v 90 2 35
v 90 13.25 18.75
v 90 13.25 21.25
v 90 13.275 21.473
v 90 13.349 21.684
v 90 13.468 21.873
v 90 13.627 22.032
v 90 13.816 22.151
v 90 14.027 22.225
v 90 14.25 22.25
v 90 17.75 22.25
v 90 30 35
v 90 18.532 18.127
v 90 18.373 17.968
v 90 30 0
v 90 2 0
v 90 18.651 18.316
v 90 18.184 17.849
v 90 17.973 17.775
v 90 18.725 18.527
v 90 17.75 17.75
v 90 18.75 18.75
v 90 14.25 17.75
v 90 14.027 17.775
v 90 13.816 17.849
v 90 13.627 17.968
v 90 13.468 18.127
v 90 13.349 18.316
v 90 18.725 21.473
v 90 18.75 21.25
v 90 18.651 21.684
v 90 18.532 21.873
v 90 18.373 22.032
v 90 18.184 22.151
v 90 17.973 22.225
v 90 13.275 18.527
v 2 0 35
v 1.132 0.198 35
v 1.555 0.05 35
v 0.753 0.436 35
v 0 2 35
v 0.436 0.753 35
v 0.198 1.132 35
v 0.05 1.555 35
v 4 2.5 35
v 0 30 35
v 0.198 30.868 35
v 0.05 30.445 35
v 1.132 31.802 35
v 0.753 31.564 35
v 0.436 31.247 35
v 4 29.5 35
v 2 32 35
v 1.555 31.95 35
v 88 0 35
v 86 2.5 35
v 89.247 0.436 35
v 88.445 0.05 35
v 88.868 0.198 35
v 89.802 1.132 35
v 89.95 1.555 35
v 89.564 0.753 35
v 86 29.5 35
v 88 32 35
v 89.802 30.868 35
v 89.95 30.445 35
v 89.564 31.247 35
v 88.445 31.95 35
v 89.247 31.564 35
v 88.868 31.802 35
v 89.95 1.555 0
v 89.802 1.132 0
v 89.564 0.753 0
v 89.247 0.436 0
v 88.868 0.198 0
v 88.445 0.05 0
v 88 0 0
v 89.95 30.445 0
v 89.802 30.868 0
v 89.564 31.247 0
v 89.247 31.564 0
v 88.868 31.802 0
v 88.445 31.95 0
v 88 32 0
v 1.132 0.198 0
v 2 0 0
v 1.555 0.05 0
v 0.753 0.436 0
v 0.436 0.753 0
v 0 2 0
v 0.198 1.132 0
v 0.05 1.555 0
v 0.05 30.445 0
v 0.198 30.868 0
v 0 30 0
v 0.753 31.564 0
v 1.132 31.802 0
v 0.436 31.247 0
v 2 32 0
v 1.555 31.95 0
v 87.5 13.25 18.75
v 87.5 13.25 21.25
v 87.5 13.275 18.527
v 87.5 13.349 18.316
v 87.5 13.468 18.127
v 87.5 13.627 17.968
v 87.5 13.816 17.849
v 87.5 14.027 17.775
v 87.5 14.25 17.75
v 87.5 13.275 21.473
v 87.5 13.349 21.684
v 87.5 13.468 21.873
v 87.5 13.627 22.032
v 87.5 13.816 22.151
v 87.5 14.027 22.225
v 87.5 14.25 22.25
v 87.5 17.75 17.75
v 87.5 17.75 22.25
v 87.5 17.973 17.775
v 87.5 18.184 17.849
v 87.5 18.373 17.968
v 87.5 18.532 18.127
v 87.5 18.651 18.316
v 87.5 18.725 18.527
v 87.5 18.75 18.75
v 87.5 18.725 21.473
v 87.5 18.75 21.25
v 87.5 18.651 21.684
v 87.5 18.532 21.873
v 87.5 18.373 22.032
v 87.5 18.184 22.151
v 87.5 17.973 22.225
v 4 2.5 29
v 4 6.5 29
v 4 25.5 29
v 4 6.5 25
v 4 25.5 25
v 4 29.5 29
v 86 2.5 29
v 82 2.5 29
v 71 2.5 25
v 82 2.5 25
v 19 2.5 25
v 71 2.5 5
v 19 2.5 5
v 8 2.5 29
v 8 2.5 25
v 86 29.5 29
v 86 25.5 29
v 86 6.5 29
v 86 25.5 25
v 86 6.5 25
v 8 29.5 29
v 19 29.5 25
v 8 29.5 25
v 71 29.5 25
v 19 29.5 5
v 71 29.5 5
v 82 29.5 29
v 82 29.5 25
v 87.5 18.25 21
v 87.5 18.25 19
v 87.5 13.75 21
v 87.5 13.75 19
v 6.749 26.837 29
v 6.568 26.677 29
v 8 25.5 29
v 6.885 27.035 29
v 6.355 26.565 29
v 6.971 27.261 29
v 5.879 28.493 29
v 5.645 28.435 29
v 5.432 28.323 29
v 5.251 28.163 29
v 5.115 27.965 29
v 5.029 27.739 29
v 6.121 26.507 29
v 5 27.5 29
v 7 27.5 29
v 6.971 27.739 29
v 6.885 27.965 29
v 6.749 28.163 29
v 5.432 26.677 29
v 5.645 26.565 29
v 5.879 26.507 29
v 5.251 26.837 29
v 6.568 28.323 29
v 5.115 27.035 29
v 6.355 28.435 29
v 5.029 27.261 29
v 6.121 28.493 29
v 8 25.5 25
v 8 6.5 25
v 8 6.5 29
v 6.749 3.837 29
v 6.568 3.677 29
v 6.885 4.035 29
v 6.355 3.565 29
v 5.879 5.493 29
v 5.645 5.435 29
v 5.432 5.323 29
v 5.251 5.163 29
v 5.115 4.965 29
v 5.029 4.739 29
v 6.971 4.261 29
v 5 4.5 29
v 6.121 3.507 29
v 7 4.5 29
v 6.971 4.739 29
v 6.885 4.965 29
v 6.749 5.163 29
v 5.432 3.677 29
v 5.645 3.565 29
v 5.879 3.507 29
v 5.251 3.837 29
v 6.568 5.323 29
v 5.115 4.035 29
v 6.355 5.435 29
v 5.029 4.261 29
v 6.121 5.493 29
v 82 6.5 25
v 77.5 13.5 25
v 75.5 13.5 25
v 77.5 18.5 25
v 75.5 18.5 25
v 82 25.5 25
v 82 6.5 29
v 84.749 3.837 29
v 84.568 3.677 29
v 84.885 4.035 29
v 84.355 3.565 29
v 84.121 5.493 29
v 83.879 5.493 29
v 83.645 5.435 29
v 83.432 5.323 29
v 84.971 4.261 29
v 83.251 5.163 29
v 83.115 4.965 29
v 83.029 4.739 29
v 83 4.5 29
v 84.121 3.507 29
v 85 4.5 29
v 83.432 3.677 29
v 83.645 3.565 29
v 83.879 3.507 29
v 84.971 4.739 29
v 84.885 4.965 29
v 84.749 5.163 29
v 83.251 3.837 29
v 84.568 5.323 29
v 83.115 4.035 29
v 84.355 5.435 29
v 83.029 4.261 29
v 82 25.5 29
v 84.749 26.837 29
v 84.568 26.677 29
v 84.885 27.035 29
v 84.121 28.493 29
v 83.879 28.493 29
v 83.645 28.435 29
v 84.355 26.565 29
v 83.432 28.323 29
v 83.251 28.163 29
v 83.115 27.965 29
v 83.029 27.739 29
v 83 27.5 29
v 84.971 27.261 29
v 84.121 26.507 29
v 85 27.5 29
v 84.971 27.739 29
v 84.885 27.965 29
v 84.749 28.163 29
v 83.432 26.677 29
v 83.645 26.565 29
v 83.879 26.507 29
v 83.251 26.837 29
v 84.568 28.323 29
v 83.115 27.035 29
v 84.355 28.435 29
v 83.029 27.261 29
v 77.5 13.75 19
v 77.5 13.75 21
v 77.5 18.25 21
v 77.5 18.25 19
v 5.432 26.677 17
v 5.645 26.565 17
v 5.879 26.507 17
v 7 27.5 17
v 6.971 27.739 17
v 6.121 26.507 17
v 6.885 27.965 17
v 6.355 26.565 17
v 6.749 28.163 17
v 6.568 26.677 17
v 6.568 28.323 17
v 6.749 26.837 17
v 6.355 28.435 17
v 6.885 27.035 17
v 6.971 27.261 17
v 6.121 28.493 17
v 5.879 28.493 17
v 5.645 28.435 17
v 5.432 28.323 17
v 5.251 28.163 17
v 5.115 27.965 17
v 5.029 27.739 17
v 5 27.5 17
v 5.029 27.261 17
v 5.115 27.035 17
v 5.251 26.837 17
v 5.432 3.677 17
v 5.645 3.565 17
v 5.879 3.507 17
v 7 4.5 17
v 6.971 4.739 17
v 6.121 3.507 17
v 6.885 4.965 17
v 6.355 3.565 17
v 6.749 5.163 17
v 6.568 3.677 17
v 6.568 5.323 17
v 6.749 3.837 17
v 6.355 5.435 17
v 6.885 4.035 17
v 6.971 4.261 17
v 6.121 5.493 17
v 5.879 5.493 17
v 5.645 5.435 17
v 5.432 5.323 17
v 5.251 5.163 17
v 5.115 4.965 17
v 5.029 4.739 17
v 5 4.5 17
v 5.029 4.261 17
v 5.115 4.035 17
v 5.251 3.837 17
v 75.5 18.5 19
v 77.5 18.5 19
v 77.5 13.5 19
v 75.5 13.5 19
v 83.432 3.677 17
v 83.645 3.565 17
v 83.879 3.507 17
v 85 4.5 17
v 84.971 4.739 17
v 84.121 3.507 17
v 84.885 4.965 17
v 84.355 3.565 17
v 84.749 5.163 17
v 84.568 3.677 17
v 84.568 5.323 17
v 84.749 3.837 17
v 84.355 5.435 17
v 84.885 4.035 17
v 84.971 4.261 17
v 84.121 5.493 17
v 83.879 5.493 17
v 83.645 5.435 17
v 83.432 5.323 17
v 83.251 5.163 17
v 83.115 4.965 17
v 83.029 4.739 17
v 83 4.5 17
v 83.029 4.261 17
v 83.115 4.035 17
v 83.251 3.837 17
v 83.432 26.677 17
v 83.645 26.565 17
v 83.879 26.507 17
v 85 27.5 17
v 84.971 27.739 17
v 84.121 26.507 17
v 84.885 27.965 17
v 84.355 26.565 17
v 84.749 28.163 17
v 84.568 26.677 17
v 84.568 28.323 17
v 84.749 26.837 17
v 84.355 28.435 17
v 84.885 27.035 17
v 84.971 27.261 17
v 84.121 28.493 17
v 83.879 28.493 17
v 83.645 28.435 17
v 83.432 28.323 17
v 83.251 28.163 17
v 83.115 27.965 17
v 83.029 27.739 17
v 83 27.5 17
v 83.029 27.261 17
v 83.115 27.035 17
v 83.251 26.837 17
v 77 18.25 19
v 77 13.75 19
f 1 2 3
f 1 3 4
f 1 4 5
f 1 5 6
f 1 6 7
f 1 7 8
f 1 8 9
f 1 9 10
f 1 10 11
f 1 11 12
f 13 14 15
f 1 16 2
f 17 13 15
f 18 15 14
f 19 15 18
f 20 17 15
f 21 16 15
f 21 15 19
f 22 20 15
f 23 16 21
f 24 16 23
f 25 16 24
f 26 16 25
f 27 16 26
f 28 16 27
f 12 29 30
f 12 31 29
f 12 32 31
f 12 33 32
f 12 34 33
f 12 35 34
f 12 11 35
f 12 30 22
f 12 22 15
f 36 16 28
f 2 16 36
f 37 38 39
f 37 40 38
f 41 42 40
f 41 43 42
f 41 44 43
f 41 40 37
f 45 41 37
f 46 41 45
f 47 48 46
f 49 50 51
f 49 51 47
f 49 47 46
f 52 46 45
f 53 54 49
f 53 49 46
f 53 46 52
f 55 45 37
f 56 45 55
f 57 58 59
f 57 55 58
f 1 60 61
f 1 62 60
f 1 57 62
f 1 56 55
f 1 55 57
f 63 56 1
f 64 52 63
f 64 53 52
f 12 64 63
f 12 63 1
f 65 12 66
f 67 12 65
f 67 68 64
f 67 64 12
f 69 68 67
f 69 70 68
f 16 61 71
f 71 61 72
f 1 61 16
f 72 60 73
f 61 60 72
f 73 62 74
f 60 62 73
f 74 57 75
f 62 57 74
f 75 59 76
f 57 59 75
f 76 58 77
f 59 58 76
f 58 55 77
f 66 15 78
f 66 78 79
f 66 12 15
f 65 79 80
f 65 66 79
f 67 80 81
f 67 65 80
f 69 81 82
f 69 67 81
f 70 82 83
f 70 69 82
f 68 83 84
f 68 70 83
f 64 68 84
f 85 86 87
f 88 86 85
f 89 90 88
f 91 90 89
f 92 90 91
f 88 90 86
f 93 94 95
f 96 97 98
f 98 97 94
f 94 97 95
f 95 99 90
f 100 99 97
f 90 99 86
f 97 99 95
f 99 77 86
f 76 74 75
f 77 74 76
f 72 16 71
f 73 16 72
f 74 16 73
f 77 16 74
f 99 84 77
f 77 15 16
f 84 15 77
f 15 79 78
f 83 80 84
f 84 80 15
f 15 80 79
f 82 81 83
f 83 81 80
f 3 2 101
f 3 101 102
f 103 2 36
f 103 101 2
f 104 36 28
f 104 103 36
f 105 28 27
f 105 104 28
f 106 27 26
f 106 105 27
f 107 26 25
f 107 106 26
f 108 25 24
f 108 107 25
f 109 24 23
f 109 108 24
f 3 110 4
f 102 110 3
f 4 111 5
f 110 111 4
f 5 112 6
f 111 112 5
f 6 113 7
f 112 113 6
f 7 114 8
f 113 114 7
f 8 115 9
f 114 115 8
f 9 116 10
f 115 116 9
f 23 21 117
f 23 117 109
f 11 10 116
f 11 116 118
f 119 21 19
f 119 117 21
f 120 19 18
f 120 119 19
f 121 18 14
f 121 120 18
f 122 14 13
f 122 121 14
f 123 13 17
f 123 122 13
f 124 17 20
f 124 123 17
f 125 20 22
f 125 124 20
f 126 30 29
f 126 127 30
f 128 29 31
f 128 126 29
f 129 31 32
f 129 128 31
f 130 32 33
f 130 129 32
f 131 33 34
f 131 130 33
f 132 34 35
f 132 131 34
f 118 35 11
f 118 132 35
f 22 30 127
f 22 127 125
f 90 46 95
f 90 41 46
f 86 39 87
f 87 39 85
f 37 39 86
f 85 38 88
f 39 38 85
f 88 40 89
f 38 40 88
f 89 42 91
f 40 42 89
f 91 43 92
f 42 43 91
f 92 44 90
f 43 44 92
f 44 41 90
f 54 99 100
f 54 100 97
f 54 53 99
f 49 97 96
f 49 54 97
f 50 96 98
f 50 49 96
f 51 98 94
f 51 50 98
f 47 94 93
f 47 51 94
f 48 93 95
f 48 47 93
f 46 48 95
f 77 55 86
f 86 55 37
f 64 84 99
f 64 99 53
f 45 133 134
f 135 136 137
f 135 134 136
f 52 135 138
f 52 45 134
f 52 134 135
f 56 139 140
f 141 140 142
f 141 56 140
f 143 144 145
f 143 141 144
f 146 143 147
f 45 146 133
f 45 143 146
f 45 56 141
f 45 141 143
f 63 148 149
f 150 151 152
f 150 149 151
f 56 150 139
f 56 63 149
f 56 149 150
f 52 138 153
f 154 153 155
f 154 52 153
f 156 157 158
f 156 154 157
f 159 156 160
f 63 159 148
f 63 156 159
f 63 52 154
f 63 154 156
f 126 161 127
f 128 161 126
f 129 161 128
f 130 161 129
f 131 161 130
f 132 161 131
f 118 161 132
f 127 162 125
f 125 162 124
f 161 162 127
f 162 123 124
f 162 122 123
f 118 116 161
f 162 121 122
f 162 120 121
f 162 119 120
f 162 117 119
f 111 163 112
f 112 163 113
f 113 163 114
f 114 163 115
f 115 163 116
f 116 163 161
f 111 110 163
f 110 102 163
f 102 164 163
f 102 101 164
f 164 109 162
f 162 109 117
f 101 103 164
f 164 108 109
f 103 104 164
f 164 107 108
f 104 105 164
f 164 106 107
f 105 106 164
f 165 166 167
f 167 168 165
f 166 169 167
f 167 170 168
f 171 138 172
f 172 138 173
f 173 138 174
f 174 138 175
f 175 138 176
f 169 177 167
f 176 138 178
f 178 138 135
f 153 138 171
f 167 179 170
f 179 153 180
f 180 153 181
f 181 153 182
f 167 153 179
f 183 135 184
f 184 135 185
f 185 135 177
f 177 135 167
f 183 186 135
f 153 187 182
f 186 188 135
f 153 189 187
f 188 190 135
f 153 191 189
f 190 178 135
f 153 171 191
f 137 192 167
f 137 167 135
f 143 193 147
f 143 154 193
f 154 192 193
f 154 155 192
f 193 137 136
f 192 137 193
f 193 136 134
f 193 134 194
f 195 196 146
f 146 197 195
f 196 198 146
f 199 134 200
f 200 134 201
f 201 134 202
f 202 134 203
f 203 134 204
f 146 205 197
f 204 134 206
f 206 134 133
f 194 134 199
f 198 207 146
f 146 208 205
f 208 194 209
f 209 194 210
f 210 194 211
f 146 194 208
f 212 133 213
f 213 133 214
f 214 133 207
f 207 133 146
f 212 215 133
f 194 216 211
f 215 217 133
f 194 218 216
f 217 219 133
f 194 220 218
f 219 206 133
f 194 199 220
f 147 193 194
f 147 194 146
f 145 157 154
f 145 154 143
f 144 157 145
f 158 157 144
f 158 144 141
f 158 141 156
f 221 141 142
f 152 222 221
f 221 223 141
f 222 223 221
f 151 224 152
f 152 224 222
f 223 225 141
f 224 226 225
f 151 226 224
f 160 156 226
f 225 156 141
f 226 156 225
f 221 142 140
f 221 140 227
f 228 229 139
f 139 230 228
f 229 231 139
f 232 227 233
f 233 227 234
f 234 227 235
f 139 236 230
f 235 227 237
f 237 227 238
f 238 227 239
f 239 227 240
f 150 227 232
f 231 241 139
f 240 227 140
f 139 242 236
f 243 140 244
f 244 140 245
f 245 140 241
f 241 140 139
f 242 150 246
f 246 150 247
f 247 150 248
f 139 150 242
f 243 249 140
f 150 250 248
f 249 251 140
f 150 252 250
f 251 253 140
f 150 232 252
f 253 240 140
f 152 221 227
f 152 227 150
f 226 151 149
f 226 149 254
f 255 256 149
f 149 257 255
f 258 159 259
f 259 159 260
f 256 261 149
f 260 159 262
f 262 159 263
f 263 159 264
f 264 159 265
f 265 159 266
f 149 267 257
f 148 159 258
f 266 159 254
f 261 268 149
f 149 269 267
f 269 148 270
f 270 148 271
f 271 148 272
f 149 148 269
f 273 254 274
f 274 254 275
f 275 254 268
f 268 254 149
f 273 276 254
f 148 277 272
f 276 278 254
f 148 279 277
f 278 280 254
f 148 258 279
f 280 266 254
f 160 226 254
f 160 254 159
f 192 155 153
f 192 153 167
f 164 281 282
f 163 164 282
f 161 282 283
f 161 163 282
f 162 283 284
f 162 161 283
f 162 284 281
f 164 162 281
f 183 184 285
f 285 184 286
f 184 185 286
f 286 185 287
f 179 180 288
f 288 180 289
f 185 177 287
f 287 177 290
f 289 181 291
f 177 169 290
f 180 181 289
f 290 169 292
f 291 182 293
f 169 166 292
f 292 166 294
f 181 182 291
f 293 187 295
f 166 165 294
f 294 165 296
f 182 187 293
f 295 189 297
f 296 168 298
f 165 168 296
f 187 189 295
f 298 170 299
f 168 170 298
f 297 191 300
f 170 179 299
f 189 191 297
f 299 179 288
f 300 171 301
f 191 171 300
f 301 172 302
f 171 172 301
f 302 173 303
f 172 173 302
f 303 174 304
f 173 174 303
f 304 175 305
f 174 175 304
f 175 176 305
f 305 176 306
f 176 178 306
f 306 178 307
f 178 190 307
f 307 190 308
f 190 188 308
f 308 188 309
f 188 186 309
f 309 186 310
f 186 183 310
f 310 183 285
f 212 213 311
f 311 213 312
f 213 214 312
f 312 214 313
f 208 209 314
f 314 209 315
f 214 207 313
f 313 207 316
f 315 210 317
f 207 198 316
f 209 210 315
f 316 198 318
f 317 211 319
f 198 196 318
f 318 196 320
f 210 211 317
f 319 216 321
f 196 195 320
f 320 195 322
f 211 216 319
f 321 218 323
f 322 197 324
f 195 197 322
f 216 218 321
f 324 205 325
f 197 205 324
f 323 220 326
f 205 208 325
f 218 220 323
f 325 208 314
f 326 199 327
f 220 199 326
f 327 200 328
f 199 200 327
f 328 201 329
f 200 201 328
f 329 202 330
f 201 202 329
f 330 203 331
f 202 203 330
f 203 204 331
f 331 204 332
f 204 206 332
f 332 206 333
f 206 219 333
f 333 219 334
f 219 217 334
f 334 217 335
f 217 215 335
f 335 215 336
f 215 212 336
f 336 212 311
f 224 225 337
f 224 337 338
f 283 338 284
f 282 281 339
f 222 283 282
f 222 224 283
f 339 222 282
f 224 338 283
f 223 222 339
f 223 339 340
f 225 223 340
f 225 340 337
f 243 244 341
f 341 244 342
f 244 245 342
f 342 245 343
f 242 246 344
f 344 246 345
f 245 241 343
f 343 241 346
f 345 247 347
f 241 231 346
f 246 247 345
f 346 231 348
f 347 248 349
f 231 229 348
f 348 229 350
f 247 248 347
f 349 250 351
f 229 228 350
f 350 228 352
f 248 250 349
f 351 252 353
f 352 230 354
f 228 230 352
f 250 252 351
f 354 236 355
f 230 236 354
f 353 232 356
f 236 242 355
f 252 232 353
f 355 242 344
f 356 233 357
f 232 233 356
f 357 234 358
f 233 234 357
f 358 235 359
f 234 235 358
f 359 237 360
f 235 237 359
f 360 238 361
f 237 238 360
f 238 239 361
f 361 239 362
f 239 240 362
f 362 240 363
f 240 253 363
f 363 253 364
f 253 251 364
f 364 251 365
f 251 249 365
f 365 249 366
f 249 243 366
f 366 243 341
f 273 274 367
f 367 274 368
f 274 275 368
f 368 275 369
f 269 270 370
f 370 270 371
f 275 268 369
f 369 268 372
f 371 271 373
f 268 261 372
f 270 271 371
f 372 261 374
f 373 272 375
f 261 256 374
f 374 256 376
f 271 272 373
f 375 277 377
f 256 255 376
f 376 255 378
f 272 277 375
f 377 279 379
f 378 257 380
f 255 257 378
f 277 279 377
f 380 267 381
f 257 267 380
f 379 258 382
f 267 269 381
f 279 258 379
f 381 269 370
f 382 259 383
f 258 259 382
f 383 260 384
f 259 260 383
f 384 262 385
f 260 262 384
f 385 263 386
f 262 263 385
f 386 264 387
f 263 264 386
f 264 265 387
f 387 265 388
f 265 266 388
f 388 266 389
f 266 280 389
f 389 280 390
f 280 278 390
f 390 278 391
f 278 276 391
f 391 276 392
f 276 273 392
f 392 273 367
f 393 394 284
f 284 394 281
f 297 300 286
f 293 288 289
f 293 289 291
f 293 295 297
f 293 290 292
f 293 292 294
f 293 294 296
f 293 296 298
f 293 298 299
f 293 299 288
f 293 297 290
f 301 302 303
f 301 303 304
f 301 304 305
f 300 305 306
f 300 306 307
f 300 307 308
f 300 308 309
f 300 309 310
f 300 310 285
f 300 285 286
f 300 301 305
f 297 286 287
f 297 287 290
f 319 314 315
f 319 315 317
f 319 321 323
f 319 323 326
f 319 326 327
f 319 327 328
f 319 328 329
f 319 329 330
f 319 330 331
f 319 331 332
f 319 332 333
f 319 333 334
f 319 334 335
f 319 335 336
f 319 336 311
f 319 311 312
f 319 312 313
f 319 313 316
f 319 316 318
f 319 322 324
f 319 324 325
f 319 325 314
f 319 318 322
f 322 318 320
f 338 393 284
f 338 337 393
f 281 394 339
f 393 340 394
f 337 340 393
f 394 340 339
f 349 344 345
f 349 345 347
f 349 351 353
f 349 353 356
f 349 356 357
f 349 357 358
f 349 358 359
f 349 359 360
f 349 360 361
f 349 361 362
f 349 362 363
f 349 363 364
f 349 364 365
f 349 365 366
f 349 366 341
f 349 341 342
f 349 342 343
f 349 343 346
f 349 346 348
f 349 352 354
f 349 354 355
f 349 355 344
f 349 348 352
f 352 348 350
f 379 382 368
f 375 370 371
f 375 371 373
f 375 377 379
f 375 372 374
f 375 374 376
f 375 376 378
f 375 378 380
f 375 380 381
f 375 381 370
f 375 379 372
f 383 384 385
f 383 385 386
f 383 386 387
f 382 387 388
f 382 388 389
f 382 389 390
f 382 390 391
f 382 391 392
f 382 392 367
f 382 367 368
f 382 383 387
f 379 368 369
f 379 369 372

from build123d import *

# Parameters (mm, degrees)
BOX_W           = 90
BOX_H           = 32
BOX_DEPTH       = 35
SKETCH_W        = 82
SKETCH_H        = 27
POCKET_DEPTH    = 30
SKETCH001_W     = 15
SKETCH001_H     = 27
PAD_DEPTH       = 20
SKETCH002_W     = 4
SKETCH002_H     = 4
PAD001_DEPTH    = 4
SKETCH003_W     = 2
SKETCH003_H     = 5
POCKET001_DEPTH = 6
SKETCH004_W     = 4.5
SKETCH004_H     = 2
POCKET002_DEPTH = 13
SKETCH005_W     = 5.5
SKETCH005_H     = 4.5
POCKET003_DEPTH = 2.5
FILLET_R        = 1
SKETCH006_R     = 1
POCKET004_DEPTH = 12
FILLET001_R     = 2


with BuildPart() as part:
    # Box → Box (new body)
    with BuildSketch(Plane.XY):
        with Locations((45, 16)):
            Rectangle(BOX_W, BOX_H)
    extrude(amount=BOX_DEPTH)

    # Sketch (on Face6 of BaseFeature) → Pocket (cut)
    with BuildSketch(Plane.XY.offset(35)):
        with Locations((45, 16)):
            Rectangle(SKETCH_W, SKETCH_H)
    extrude(amount=-POCKET_DEPTH, mode=Mode.SUBTRACT)

    # Sketch001 (on Face11 of Pocket) → Pad (join)
    with BuildSketch(Plane.XY.offset(5)):
        with Locations((11.5, 16)):
            Rectangle(SKETCH001_W, SKETCH001_H)
        with Locations((78.5, 16)):
            Rectangle(SKETCH001_W, SKETCH001_H)
    extrude(amount=PAD_DEPTH)

    # Sketch002 (on Face11 of Pad) → Pad001 (join)
    with BuildSketch(Plane.XY.offset(25)):
        with Locations((6, 27.5)):
            Rectangle(SKETCH002_W, SKETCH002_H)
        with Locations((6, 4.5)):
            Rectangle(SKETCH002_W, SKETCH002_H)
        with Locations((84, 27.5)):
            Rectangle(SKETCH002_W, SKETCH002_H)
        with Locations((84, 4.5)):
            Rectangle(SKETCH002_W, SKETCH002_H)
    extrude(amount=PAD001_DEPTH)

    # Sketch003 (on Face20 of Pad001) → Pocket001 (cut)
    with BuildSketch(Plane.XY.offset(25)):
        with Locations((76.5, 16)):
            Rectangle(SKETCH003_W, SKETCH003_H)
    extrude(amount=-POCKET001_DEPTH, mode=Mode.SUBTRACT)

    # Sketch004 (on Face6 of Pocket001) → Pocket002 (cut)
    with BuildSketch(Plane.YZ.offset(90)):
        with Locations((16, 20)):
            Rectangle(SKETCH004_W, SKETCH004_H)
    extrude(amount=-POCKET002_DEPTH, mode=Mode.SUBTRACT)

    # Sketch005 (on Face6 of Pocket002) → Pocket003 (cut)
    with BuildSketch(Plane.YZ.offset(90)):
        with Locations((16, 20)):
            Rectangle(SKETCH005_W, SKETCH005_H)
    extrude(amount=-POCKET003_DEPTH, mode=Mode.SUBTRACT)

    # Fillet
    fillet_edges = [part.edges().sort_by_distance(p)[0] for p in [
        (88.75, 13.25, 22.25),
        (88.75, 18.75, 22.25),
        (88.75, 13.25, 17.75),
        (88.75, 18.75, 17.75),
    ]]
    fillet(fillet_edges, radius=FILLET_R)

    # Sketch006 (on Face38 of Fillet) → Pocket004 (cut)
    with BuildSketch(Plane.XY.offset(29)):
        with Locations((84, 27.5)):
            Circle(SKETCH006_R)
        with Locations((84, 4.5)):
            Circle(SKETCH006_R)
        with Locations((6, 27.5)):
            Circle(SKETCH006_R)
        with Locations((6, 4.5)):
            Circle(SKETCH006_R)
    extrude(amount=-POCKET004_DEPTH, mode=Mode.SUBTRACT)

    # Fillet001
    fillet001_edges = [part.edges().sort_by_distance(p)[0] for p in [
        (0, 0, 17.5),
        (90, 0, 17.5),
        (90, 32, 17.5),
        (0, 32, 17.5),
    ]]
    fillet(fillet001_edges, radius=FILLET001_R)


solid = part.part
